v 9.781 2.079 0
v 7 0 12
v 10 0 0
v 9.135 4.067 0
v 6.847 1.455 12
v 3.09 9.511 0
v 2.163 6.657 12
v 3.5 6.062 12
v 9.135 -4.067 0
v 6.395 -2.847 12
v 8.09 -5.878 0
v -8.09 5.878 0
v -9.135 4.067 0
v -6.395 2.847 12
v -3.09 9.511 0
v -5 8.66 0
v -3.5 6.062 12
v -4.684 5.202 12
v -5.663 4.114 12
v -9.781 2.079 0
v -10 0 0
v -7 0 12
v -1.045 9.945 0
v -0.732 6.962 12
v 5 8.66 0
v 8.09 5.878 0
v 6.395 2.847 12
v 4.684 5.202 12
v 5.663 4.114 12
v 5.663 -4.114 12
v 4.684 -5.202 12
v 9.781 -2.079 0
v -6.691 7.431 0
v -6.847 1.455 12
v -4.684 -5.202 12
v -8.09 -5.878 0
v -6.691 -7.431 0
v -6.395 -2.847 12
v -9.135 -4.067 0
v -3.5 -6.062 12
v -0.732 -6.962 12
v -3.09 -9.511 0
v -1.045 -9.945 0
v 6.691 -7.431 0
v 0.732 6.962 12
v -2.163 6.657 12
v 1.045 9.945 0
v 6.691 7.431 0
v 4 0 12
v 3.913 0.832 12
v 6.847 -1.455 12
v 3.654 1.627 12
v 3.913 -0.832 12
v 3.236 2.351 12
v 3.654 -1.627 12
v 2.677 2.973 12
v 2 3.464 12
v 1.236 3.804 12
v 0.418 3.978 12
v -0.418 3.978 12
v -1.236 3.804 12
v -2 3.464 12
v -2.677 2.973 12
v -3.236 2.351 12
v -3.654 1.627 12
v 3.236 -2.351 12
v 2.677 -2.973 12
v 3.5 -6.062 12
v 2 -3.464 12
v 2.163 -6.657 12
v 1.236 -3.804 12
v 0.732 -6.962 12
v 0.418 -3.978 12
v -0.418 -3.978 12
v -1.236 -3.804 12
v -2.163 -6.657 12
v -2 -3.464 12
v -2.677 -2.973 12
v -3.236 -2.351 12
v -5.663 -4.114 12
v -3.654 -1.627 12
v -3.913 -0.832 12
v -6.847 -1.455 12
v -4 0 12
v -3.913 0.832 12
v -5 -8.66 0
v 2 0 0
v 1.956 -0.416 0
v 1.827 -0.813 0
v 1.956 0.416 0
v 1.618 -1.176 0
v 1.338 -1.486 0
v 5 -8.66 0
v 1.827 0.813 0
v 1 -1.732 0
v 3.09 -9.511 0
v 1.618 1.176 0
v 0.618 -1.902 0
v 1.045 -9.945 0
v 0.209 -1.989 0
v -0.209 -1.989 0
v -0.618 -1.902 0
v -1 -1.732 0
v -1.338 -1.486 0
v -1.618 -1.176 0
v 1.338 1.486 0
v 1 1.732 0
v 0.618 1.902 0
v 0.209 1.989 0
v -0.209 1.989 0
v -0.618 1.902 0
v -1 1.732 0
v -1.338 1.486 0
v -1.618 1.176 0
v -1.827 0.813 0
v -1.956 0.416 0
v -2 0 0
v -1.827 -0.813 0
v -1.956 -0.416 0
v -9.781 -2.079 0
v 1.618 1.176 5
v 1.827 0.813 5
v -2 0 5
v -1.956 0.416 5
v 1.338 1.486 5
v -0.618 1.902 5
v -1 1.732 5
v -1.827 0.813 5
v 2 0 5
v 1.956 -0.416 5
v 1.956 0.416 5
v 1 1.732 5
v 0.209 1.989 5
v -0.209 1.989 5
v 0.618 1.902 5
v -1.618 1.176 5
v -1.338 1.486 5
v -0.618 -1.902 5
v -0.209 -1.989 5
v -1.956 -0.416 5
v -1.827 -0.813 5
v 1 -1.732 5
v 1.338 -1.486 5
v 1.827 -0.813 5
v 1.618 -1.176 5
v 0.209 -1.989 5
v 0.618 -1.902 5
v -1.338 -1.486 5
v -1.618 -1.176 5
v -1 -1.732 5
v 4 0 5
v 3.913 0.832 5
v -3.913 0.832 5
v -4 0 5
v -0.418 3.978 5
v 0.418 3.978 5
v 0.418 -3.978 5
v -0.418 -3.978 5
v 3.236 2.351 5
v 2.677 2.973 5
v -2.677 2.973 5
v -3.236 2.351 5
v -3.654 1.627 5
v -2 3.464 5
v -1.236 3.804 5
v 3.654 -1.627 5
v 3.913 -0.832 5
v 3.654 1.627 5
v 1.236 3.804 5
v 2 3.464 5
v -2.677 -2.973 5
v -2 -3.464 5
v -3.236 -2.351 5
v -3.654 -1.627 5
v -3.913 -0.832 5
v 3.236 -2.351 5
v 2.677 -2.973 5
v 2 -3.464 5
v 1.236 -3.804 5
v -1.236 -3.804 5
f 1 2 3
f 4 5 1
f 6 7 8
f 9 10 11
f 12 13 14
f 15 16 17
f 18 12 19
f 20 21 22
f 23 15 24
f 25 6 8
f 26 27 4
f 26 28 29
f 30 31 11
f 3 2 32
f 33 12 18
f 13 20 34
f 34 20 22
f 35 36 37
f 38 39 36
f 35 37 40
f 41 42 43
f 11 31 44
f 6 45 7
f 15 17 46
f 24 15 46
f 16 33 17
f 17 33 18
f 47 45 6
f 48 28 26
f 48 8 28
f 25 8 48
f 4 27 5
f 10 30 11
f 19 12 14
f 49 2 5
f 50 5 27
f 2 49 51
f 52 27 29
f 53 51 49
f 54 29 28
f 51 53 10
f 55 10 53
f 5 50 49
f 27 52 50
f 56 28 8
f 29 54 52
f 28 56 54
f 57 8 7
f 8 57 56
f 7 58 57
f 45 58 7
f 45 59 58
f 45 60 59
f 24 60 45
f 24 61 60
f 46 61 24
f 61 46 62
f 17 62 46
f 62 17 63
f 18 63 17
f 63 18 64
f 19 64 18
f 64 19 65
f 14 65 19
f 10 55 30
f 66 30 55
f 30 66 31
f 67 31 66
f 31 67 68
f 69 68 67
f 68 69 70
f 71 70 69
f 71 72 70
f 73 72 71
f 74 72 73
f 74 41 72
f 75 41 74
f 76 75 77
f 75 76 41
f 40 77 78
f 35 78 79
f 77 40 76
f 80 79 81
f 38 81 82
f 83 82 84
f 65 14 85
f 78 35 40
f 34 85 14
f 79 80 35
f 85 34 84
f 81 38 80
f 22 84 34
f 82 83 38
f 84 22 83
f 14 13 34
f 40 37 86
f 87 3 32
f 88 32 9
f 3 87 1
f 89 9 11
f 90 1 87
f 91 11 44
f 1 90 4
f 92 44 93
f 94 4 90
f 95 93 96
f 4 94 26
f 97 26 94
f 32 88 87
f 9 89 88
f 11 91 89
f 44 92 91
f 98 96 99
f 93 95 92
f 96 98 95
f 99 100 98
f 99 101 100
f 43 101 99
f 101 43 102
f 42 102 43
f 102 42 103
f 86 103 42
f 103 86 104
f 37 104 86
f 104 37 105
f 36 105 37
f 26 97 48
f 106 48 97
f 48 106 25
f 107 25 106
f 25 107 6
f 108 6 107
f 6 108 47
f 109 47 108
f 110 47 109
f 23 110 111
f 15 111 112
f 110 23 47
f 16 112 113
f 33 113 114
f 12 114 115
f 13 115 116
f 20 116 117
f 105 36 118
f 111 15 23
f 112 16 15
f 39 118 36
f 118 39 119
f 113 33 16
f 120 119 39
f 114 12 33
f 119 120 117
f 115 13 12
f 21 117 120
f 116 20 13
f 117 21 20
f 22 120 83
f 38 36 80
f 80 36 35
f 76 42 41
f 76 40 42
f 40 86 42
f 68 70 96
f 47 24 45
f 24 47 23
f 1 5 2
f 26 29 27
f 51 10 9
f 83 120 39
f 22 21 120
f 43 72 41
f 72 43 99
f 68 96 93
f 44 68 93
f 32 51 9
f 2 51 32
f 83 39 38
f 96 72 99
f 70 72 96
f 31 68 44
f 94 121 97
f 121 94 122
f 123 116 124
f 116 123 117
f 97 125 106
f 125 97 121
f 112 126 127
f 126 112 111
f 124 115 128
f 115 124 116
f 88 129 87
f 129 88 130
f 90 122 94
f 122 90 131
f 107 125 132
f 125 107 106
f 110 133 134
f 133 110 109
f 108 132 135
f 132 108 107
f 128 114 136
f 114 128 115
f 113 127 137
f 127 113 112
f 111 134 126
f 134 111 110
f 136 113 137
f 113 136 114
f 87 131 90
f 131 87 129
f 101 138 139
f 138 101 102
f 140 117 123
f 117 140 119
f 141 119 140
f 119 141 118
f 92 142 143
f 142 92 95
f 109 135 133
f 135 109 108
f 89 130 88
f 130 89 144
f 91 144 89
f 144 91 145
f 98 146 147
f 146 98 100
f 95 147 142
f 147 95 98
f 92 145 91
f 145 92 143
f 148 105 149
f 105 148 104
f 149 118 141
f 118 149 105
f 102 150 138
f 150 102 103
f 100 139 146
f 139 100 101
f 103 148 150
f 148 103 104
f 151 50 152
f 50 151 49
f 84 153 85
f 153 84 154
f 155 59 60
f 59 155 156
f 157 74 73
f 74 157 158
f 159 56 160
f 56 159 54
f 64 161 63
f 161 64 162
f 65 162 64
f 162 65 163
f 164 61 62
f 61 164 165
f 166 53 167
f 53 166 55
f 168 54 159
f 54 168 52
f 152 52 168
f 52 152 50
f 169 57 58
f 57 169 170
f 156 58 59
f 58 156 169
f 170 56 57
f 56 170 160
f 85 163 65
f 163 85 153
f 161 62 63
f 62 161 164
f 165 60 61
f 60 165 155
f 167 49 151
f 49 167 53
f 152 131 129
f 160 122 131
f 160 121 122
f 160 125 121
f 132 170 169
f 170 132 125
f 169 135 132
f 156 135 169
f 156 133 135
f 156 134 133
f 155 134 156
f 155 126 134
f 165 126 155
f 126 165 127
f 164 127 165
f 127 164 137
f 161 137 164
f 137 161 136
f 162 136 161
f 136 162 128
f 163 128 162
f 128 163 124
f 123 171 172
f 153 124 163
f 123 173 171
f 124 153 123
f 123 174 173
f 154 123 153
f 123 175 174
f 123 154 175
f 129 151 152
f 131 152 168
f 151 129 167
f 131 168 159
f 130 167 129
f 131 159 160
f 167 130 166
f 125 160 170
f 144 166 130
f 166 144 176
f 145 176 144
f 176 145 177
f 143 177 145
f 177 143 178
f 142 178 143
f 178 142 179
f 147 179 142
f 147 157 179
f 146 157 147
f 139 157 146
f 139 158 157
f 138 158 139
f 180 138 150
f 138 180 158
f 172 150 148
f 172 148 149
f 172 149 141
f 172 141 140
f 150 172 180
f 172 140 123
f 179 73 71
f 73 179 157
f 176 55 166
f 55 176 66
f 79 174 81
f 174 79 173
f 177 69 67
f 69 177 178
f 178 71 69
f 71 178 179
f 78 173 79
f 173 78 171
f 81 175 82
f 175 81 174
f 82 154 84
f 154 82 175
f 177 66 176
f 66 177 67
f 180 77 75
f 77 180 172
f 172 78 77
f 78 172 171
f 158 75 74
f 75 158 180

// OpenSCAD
// Power supply's feet
// Tapegyseg laba
$fn = 30;
height = 12;
sink = 7;

difference()
{
    cylinder(h = height, r1 = 10, r2 = 7, center = false);
    cylinder(h = height, r = 2, center = false);
    translate([0, 0, height - sink])
    {
        cylinder(h = sink, r = 4, center = false);
    }
}
